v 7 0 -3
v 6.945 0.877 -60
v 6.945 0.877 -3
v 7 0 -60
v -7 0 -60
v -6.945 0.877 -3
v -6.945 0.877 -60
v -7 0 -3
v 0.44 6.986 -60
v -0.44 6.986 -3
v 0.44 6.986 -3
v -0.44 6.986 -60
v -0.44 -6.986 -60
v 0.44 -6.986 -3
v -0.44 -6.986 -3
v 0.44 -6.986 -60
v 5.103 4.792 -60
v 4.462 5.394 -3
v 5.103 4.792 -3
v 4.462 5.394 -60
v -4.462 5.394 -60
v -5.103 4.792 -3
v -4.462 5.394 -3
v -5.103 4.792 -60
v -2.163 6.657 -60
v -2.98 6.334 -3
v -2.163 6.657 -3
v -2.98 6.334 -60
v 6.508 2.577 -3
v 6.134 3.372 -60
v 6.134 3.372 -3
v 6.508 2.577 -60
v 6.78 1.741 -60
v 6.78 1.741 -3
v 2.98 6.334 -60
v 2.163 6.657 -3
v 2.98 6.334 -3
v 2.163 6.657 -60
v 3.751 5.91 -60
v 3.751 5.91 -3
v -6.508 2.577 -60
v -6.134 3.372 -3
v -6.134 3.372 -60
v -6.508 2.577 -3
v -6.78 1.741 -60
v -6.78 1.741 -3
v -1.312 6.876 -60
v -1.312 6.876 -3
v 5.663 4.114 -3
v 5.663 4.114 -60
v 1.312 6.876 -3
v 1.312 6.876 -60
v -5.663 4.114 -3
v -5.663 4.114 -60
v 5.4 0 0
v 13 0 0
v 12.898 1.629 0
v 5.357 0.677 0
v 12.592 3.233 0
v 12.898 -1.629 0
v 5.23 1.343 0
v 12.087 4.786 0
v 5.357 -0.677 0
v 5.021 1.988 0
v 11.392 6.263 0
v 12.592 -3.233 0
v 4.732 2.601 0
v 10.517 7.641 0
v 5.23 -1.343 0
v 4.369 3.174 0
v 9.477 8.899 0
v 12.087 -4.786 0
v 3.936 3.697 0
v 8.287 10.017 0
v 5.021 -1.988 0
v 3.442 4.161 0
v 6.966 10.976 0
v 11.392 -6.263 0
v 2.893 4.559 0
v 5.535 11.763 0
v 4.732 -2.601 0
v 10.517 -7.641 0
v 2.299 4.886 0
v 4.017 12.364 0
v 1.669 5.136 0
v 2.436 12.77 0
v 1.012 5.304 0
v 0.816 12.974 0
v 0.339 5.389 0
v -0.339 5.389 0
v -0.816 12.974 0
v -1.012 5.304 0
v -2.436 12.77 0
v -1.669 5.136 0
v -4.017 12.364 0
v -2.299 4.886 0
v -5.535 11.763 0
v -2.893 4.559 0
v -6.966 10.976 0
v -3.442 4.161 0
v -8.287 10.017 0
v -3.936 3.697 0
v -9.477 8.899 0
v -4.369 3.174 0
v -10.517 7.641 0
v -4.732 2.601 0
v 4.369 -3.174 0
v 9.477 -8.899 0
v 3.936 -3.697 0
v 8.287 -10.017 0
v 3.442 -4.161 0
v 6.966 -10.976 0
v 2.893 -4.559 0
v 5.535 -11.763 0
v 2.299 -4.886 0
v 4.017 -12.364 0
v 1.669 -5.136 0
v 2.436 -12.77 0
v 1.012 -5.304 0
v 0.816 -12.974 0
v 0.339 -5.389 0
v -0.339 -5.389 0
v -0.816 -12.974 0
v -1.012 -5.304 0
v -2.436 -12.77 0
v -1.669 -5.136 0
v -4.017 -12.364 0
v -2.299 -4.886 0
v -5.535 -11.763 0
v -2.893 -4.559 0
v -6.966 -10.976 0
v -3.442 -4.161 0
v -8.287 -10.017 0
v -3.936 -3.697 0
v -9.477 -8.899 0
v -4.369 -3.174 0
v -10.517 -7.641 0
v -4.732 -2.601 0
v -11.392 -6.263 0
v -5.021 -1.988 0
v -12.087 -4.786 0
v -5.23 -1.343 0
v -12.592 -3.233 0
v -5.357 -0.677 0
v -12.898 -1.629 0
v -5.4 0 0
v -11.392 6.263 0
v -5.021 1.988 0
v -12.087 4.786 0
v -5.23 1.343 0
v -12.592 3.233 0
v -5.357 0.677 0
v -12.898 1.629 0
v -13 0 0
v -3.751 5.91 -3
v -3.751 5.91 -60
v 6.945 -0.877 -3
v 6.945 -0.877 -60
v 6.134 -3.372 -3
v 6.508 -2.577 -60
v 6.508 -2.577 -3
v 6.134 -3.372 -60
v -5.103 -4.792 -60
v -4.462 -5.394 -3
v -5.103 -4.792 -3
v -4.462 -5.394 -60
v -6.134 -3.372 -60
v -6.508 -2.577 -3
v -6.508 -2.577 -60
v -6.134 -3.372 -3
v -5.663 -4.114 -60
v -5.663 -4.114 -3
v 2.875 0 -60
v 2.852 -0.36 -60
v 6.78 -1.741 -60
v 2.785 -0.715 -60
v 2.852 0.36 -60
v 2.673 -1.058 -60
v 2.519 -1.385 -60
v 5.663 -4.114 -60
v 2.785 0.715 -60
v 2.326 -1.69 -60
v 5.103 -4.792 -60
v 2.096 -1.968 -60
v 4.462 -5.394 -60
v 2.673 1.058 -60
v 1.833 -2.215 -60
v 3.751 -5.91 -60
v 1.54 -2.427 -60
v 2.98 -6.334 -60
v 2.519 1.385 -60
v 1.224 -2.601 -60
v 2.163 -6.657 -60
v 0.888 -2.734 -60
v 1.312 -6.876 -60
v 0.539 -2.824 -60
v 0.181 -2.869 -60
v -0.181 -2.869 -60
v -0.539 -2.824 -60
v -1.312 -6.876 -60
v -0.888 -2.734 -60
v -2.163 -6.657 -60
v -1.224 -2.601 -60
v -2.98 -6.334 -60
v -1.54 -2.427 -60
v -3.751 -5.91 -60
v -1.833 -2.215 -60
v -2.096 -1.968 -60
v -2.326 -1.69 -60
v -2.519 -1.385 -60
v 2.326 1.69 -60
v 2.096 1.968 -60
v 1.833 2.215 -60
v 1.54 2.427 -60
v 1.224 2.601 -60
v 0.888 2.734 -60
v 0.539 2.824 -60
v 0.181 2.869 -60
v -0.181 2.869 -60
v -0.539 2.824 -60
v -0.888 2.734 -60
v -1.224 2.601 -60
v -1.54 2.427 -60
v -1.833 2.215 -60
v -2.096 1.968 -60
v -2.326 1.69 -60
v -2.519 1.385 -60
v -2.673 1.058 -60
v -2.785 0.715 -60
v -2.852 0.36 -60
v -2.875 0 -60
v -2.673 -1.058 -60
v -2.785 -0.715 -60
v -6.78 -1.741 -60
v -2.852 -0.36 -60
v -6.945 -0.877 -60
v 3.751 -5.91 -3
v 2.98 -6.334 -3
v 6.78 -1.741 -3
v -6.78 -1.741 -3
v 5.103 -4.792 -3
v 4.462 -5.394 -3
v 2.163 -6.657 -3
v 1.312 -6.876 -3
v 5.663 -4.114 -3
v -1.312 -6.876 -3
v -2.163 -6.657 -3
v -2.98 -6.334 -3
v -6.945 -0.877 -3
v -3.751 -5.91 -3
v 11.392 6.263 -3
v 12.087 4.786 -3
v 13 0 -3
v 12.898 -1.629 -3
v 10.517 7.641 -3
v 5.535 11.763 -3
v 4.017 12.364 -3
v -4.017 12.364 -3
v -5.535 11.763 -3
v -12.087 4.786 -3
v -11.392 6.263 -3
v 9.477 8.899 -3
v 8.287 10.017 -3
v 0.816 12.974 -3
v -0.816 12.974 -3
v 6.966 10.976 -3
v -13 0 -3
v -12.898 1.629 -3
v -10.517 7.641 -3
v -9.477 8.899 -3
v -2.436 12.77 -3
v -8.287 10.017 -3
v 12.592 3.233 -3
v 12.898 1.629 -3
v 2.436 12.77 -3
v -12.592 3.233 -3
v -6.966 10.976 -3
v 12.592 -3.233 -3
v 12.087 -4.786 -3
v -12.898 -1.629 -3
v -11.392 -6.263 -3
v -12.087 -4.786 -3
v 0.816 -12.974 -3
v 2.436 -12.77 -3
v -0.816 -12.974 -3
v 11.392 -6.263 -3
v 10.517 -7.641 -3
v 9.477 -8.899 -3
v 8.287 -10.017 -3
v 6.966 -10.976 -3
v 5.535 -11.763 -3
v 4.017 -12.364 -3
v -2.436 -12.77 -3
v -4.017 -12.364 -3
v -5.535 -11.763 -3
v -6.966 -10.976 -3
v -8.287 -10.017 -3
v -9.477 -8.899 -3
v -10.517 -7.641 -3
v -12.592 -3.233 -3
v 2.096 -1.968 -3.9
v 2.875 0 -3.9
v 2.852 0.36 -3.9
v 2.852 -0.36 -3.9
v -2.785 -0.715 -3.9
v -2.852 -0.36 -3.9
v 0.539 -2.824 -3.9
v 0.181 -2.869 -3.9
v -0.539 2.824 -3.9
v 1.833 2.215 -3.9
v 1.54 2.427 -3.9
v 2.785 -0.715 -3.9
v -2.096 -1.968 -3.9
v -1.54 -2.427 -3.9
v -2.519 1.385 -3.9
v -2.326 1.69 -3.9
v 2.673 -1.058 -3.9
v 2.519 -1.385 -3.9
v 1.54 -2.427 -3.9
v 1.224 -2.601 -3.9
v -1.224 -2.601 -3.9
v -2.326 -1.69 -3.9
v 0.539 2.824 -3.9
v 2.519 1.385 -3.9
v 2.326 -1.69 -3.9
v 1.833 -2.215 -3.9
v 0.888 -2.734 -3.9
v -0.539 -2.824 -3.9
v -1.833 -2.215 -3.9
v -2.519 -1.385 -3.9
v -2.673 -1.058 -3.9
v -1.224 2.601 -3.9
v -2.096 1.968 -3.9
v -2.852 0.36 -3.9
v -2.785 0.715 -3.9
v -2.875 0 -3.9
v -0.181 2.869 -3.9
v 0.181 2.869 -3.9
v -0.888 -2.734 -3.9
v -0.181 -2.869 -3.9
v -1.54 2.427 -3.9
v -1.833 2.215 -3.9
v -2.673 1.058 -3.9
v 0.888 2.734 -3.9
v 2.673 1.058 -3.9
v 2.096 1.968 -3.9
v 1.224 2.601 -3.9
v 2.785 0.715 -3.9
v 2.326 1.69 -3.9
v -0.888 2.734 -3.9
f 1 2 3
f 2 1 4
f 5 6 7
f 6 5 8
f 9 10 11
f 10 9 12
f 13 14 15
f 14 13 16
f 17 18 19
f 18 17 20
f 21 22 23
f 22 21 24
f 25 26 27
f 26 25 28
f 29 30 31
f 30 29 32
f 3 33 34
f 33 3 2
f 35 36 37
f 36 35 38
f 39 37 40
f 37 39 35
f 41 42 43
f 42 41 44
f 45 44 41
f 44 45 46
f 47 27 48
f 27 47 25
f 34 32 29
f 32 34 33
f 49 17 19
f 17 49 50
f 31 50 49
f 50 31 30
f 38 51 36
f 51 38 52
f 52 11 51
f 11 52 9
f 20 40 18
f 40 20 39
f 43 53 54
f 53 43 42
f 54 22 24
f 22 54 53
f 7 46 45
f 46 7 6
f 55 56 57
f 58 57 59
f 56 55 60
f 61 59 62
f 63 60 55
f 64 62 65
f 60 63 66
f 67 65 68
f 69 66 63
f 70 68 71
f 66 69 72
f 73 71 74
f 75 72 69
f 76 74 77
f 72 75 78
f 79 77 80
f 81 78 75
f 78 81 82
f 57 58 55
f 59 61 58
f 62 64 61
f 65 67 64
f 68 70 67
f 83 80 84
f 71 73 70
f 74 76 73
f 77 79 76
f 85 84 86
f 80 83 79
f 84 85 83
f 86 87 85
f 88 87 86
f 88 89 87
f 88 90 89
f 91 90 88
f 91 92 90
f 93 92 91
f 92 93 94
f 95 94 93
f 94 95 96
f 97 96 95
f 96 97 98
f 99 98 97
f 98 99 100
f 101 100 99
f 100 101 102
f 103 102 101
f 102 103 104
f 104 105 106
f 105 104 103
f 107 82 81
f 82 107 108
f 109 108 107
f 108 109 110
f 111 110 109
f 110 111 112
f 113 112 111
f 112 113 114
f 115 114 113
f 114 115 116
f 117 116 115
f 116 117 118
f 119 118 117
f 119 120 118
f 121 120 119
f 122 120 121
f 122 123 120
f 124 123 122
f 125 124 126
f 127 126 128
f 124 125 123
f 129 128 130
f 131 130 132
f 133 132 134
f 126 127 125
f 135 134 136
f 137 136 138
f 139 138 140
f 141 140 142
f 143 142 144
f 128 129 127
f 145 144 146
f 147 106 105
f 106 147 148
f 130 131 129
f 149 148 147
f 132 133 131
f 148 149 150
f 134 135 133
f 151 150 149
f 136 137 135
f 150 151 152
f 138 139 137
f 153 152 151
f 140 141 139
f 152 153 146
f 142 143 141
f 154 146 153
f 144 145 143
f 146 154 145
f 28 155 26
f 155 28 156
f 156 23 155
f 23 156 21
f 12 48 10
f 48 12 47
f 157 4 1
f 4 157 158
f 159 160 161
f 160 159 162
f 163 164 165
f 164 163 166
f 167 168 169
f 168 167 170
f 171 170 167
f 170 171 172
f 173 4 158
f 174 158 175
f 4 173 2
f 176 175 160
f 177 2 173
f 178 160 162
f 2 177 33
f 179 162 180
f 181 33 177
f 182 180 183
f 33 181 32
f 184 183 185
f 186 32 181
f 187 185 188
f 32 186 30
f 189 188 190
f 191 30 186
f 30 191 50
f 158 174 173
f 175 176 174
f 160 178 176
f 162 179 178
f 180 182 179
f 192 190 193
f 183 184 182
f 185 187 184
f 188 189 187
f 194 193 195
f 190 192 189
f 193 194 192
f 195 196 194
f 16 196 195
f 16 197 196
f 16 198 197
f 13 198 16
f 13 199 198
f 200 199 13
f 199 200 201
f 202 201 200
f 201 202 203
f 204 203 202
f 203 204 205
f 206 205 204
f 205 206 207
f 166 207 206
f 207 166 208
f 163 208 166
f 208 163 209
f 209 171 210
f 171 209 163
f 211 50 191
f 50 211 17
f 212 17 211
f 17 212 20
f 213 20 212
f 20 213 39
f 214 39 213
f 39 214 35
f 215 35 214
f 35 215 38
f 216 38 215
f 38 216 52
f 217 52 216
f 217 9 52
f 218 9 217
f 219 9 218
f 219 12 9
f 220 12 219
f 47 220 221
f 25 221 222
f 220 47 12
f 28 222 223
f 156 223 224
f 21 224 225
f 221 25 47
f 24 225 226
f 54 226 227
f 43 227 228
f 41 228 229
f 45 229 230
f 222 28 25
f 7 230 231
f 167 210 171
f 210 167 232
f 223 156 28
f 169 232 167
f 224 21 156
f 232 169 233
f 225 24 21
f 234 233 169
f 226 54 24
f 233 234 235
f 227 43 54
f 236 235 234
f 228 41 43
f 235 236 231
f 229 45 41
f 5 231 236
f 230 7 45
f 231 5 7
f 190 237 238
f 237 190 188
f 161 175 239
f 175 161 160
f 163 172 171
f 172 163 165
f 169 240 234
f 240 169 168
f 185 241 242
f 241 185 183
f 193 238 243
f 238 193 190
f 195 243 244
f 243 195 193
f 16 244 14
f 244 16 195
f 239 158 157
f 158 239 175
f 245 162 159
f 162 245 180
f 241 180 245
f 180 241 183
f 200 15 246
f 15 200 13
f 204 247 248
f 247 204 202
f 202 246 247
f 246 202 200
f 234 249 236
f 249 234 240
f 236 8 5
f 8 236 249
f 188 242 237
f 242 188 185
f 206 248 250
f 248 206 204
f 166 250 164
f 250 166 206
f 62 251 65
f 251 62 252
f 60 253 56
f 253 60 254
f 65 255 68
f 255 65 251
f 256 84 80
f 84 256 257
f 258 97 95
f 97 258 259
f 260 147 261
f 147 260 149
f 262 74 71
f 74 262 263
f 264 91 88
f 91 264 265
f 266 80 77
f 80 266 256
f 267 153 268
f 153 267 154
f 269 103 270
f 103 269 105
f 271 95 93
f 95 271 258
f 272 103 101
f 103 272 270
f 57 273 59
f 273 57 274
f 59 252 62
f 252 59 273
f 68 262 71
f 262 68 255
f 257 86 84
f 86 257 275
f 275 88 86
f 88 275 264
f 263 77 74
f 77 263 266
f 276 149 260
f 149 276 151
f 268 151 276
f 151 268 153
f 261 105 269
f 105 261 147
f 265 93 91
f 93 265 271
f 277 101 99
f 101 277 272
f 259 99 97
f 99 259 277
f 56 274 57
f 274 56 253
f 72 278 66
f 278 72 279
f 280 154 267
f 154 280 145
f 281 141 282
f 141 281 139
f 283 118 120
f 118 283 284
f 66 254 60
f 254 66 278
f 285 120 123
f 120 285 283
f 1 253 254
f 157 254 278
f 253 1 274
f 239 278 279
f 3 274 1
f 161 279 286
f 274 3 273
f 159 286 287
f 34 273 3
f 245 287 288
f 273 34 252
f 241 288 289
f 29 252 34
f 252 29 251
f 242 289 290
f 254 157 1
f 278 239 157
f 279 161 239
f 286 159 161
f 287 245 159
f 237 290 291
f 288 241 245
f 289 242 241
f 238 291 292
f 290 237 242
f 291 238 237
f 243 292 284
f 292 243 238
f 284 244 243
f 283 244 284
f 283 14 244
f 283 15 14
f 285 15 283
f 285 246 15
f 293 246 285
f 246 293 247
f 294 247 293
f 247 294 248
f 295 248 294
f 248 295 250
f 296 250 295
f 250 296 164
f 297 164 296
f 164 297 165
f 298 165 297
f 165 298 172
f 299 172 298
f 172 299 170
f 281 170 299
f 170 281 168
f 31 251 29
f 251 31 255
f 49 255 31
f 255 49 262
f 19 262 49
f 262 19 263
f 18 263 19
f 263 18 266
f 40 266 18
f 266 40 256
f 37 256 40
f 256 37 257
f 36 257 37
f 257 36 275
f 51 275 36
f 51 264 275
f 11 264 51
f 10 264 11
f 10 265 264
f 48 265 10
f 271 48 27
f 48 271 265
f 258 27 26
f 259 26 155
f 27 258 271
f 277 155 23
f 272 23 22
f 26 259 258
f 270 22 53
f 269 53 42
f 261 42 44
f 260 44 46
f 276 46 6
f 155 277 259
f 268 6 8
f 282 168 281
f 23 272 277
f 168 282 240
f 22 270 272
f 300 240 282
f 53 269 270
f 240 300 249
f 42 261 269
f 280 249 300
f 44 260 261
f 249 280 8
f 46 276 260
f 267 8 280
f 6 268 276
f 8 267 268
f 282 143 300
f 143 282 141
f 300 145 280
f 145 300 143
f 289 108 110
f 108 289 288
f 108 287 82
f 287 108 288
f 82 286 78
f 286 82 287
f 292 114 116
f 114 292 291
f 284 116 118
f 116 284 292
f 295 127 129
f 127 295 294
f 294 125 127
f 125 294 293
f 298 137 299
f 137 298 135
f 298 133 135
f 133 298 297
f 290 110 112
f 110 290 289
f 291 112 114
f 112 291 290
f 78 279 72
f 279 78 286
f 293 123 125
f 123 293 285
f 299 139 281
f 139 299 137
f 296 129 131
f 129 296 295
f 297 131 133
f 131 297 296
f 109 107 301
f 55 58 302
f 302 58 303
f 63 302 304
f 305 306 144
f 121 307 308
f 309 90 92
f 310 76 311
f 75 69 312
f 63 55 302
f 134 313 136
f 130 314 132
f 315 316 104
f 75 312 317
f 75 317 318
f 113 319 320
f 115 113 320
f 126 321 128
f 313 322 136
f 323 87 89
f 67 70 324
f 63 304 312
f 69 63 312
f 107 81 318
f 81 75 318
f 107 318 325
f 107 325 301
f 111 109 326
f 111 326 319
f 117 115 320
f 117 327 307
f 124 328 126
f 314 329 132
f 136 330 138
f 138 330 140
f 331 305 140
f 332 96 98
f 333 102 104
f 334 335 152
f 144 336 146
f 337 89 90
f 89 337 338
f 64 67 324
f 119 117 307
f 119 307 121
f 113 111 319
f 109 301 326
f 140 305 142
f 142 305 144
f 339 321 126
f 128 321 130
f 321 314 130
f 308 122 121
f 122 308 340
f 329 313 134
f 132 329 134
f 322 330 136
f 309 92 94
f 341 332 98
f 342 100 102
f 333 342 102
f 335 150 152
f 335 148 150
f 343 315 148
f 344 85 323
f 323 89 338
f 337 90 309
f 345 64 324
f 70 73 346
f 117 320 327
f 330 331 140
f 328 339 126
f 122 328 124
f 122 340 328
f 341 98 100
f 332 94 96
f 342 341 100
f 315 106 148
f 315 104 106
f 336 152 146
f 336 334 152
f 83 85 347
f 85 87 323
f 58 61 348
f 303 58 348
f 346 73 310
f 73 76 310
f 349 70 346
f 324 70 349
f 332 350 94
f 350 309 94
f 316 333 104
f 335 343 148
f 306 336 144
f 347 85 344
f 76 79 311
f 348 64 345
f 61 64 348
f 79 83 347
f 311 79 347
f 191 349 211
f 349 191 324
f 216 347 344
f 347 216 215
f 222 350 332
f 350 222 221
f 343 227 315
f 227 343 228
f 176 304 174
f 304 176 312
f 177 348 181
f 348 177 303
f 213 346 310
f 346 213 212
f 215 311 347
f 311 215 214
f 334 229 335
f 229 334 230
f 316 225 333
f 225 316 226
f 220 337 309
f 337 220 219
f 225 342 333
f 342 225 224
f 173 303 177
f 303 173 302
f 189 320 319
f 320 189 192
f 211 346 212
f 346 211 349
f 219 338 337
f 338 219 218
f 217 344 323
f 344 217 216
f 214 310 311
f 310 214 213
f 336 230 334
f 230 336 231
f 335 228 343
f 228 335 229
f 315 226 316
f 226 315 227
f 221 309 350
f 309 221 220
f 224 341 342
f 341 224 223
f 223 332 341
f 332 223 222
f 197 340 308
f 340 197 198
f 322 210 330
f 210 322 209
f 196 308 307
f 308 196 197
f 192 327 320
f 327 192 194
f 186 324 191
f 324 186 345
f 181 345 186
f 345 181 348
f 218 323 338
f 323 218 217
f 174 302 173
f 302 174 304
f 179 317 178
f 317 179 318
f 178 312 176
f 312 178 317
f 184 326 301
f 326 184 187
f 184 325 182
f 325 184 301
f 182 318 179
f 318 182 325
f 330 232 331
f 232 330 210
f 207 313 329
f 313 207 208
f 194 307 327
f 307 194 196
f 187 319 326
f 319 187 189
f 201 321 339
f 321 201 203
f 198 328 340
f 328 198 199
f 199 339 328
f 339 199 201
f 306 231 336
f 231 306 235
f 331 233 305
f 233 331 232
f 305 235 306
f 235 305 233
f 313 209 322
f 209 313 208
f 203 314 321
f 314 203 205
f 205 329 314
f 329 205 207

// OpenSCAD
$fn = 50;


difference() {
	union() {
		translate(v = [0, 0, -60.0000000000]) {
			cylinder(h = 60, r = 7.0000000000);
		}
		translate(v = [0, 0, -3.0000000000]) {
			cylinder(h = 3, r = 13.0000000000);
		}
	}
	union() {
		translate(v = [0, 0, 0]) {
			rotate(a = [0, 0, 0]) {
				difference() {
					union() {
						#translate(v = [0, 0, -60.0000000000]) {
							cylinder(h = 60, r = 2.6000000000);
						}
						#translate(v = [0, 0, -3.9000000000]) {
							cylinder(h = 3.9000000000, r = 7.0000000000, r1 = 2.8750000000, r2 = 5.4000000000);
						}
						#translate(v = [0, 0, -60.0000000000]) {
							cylinder(h = 60, r = 2.8750000000);
						}
						#translate(v = [0, 0, -60.0000000000]) {
							cylinder(h = 60, r = 2.6000000000);
						}
					}
					union();
				}
			}
		}
	}
}
